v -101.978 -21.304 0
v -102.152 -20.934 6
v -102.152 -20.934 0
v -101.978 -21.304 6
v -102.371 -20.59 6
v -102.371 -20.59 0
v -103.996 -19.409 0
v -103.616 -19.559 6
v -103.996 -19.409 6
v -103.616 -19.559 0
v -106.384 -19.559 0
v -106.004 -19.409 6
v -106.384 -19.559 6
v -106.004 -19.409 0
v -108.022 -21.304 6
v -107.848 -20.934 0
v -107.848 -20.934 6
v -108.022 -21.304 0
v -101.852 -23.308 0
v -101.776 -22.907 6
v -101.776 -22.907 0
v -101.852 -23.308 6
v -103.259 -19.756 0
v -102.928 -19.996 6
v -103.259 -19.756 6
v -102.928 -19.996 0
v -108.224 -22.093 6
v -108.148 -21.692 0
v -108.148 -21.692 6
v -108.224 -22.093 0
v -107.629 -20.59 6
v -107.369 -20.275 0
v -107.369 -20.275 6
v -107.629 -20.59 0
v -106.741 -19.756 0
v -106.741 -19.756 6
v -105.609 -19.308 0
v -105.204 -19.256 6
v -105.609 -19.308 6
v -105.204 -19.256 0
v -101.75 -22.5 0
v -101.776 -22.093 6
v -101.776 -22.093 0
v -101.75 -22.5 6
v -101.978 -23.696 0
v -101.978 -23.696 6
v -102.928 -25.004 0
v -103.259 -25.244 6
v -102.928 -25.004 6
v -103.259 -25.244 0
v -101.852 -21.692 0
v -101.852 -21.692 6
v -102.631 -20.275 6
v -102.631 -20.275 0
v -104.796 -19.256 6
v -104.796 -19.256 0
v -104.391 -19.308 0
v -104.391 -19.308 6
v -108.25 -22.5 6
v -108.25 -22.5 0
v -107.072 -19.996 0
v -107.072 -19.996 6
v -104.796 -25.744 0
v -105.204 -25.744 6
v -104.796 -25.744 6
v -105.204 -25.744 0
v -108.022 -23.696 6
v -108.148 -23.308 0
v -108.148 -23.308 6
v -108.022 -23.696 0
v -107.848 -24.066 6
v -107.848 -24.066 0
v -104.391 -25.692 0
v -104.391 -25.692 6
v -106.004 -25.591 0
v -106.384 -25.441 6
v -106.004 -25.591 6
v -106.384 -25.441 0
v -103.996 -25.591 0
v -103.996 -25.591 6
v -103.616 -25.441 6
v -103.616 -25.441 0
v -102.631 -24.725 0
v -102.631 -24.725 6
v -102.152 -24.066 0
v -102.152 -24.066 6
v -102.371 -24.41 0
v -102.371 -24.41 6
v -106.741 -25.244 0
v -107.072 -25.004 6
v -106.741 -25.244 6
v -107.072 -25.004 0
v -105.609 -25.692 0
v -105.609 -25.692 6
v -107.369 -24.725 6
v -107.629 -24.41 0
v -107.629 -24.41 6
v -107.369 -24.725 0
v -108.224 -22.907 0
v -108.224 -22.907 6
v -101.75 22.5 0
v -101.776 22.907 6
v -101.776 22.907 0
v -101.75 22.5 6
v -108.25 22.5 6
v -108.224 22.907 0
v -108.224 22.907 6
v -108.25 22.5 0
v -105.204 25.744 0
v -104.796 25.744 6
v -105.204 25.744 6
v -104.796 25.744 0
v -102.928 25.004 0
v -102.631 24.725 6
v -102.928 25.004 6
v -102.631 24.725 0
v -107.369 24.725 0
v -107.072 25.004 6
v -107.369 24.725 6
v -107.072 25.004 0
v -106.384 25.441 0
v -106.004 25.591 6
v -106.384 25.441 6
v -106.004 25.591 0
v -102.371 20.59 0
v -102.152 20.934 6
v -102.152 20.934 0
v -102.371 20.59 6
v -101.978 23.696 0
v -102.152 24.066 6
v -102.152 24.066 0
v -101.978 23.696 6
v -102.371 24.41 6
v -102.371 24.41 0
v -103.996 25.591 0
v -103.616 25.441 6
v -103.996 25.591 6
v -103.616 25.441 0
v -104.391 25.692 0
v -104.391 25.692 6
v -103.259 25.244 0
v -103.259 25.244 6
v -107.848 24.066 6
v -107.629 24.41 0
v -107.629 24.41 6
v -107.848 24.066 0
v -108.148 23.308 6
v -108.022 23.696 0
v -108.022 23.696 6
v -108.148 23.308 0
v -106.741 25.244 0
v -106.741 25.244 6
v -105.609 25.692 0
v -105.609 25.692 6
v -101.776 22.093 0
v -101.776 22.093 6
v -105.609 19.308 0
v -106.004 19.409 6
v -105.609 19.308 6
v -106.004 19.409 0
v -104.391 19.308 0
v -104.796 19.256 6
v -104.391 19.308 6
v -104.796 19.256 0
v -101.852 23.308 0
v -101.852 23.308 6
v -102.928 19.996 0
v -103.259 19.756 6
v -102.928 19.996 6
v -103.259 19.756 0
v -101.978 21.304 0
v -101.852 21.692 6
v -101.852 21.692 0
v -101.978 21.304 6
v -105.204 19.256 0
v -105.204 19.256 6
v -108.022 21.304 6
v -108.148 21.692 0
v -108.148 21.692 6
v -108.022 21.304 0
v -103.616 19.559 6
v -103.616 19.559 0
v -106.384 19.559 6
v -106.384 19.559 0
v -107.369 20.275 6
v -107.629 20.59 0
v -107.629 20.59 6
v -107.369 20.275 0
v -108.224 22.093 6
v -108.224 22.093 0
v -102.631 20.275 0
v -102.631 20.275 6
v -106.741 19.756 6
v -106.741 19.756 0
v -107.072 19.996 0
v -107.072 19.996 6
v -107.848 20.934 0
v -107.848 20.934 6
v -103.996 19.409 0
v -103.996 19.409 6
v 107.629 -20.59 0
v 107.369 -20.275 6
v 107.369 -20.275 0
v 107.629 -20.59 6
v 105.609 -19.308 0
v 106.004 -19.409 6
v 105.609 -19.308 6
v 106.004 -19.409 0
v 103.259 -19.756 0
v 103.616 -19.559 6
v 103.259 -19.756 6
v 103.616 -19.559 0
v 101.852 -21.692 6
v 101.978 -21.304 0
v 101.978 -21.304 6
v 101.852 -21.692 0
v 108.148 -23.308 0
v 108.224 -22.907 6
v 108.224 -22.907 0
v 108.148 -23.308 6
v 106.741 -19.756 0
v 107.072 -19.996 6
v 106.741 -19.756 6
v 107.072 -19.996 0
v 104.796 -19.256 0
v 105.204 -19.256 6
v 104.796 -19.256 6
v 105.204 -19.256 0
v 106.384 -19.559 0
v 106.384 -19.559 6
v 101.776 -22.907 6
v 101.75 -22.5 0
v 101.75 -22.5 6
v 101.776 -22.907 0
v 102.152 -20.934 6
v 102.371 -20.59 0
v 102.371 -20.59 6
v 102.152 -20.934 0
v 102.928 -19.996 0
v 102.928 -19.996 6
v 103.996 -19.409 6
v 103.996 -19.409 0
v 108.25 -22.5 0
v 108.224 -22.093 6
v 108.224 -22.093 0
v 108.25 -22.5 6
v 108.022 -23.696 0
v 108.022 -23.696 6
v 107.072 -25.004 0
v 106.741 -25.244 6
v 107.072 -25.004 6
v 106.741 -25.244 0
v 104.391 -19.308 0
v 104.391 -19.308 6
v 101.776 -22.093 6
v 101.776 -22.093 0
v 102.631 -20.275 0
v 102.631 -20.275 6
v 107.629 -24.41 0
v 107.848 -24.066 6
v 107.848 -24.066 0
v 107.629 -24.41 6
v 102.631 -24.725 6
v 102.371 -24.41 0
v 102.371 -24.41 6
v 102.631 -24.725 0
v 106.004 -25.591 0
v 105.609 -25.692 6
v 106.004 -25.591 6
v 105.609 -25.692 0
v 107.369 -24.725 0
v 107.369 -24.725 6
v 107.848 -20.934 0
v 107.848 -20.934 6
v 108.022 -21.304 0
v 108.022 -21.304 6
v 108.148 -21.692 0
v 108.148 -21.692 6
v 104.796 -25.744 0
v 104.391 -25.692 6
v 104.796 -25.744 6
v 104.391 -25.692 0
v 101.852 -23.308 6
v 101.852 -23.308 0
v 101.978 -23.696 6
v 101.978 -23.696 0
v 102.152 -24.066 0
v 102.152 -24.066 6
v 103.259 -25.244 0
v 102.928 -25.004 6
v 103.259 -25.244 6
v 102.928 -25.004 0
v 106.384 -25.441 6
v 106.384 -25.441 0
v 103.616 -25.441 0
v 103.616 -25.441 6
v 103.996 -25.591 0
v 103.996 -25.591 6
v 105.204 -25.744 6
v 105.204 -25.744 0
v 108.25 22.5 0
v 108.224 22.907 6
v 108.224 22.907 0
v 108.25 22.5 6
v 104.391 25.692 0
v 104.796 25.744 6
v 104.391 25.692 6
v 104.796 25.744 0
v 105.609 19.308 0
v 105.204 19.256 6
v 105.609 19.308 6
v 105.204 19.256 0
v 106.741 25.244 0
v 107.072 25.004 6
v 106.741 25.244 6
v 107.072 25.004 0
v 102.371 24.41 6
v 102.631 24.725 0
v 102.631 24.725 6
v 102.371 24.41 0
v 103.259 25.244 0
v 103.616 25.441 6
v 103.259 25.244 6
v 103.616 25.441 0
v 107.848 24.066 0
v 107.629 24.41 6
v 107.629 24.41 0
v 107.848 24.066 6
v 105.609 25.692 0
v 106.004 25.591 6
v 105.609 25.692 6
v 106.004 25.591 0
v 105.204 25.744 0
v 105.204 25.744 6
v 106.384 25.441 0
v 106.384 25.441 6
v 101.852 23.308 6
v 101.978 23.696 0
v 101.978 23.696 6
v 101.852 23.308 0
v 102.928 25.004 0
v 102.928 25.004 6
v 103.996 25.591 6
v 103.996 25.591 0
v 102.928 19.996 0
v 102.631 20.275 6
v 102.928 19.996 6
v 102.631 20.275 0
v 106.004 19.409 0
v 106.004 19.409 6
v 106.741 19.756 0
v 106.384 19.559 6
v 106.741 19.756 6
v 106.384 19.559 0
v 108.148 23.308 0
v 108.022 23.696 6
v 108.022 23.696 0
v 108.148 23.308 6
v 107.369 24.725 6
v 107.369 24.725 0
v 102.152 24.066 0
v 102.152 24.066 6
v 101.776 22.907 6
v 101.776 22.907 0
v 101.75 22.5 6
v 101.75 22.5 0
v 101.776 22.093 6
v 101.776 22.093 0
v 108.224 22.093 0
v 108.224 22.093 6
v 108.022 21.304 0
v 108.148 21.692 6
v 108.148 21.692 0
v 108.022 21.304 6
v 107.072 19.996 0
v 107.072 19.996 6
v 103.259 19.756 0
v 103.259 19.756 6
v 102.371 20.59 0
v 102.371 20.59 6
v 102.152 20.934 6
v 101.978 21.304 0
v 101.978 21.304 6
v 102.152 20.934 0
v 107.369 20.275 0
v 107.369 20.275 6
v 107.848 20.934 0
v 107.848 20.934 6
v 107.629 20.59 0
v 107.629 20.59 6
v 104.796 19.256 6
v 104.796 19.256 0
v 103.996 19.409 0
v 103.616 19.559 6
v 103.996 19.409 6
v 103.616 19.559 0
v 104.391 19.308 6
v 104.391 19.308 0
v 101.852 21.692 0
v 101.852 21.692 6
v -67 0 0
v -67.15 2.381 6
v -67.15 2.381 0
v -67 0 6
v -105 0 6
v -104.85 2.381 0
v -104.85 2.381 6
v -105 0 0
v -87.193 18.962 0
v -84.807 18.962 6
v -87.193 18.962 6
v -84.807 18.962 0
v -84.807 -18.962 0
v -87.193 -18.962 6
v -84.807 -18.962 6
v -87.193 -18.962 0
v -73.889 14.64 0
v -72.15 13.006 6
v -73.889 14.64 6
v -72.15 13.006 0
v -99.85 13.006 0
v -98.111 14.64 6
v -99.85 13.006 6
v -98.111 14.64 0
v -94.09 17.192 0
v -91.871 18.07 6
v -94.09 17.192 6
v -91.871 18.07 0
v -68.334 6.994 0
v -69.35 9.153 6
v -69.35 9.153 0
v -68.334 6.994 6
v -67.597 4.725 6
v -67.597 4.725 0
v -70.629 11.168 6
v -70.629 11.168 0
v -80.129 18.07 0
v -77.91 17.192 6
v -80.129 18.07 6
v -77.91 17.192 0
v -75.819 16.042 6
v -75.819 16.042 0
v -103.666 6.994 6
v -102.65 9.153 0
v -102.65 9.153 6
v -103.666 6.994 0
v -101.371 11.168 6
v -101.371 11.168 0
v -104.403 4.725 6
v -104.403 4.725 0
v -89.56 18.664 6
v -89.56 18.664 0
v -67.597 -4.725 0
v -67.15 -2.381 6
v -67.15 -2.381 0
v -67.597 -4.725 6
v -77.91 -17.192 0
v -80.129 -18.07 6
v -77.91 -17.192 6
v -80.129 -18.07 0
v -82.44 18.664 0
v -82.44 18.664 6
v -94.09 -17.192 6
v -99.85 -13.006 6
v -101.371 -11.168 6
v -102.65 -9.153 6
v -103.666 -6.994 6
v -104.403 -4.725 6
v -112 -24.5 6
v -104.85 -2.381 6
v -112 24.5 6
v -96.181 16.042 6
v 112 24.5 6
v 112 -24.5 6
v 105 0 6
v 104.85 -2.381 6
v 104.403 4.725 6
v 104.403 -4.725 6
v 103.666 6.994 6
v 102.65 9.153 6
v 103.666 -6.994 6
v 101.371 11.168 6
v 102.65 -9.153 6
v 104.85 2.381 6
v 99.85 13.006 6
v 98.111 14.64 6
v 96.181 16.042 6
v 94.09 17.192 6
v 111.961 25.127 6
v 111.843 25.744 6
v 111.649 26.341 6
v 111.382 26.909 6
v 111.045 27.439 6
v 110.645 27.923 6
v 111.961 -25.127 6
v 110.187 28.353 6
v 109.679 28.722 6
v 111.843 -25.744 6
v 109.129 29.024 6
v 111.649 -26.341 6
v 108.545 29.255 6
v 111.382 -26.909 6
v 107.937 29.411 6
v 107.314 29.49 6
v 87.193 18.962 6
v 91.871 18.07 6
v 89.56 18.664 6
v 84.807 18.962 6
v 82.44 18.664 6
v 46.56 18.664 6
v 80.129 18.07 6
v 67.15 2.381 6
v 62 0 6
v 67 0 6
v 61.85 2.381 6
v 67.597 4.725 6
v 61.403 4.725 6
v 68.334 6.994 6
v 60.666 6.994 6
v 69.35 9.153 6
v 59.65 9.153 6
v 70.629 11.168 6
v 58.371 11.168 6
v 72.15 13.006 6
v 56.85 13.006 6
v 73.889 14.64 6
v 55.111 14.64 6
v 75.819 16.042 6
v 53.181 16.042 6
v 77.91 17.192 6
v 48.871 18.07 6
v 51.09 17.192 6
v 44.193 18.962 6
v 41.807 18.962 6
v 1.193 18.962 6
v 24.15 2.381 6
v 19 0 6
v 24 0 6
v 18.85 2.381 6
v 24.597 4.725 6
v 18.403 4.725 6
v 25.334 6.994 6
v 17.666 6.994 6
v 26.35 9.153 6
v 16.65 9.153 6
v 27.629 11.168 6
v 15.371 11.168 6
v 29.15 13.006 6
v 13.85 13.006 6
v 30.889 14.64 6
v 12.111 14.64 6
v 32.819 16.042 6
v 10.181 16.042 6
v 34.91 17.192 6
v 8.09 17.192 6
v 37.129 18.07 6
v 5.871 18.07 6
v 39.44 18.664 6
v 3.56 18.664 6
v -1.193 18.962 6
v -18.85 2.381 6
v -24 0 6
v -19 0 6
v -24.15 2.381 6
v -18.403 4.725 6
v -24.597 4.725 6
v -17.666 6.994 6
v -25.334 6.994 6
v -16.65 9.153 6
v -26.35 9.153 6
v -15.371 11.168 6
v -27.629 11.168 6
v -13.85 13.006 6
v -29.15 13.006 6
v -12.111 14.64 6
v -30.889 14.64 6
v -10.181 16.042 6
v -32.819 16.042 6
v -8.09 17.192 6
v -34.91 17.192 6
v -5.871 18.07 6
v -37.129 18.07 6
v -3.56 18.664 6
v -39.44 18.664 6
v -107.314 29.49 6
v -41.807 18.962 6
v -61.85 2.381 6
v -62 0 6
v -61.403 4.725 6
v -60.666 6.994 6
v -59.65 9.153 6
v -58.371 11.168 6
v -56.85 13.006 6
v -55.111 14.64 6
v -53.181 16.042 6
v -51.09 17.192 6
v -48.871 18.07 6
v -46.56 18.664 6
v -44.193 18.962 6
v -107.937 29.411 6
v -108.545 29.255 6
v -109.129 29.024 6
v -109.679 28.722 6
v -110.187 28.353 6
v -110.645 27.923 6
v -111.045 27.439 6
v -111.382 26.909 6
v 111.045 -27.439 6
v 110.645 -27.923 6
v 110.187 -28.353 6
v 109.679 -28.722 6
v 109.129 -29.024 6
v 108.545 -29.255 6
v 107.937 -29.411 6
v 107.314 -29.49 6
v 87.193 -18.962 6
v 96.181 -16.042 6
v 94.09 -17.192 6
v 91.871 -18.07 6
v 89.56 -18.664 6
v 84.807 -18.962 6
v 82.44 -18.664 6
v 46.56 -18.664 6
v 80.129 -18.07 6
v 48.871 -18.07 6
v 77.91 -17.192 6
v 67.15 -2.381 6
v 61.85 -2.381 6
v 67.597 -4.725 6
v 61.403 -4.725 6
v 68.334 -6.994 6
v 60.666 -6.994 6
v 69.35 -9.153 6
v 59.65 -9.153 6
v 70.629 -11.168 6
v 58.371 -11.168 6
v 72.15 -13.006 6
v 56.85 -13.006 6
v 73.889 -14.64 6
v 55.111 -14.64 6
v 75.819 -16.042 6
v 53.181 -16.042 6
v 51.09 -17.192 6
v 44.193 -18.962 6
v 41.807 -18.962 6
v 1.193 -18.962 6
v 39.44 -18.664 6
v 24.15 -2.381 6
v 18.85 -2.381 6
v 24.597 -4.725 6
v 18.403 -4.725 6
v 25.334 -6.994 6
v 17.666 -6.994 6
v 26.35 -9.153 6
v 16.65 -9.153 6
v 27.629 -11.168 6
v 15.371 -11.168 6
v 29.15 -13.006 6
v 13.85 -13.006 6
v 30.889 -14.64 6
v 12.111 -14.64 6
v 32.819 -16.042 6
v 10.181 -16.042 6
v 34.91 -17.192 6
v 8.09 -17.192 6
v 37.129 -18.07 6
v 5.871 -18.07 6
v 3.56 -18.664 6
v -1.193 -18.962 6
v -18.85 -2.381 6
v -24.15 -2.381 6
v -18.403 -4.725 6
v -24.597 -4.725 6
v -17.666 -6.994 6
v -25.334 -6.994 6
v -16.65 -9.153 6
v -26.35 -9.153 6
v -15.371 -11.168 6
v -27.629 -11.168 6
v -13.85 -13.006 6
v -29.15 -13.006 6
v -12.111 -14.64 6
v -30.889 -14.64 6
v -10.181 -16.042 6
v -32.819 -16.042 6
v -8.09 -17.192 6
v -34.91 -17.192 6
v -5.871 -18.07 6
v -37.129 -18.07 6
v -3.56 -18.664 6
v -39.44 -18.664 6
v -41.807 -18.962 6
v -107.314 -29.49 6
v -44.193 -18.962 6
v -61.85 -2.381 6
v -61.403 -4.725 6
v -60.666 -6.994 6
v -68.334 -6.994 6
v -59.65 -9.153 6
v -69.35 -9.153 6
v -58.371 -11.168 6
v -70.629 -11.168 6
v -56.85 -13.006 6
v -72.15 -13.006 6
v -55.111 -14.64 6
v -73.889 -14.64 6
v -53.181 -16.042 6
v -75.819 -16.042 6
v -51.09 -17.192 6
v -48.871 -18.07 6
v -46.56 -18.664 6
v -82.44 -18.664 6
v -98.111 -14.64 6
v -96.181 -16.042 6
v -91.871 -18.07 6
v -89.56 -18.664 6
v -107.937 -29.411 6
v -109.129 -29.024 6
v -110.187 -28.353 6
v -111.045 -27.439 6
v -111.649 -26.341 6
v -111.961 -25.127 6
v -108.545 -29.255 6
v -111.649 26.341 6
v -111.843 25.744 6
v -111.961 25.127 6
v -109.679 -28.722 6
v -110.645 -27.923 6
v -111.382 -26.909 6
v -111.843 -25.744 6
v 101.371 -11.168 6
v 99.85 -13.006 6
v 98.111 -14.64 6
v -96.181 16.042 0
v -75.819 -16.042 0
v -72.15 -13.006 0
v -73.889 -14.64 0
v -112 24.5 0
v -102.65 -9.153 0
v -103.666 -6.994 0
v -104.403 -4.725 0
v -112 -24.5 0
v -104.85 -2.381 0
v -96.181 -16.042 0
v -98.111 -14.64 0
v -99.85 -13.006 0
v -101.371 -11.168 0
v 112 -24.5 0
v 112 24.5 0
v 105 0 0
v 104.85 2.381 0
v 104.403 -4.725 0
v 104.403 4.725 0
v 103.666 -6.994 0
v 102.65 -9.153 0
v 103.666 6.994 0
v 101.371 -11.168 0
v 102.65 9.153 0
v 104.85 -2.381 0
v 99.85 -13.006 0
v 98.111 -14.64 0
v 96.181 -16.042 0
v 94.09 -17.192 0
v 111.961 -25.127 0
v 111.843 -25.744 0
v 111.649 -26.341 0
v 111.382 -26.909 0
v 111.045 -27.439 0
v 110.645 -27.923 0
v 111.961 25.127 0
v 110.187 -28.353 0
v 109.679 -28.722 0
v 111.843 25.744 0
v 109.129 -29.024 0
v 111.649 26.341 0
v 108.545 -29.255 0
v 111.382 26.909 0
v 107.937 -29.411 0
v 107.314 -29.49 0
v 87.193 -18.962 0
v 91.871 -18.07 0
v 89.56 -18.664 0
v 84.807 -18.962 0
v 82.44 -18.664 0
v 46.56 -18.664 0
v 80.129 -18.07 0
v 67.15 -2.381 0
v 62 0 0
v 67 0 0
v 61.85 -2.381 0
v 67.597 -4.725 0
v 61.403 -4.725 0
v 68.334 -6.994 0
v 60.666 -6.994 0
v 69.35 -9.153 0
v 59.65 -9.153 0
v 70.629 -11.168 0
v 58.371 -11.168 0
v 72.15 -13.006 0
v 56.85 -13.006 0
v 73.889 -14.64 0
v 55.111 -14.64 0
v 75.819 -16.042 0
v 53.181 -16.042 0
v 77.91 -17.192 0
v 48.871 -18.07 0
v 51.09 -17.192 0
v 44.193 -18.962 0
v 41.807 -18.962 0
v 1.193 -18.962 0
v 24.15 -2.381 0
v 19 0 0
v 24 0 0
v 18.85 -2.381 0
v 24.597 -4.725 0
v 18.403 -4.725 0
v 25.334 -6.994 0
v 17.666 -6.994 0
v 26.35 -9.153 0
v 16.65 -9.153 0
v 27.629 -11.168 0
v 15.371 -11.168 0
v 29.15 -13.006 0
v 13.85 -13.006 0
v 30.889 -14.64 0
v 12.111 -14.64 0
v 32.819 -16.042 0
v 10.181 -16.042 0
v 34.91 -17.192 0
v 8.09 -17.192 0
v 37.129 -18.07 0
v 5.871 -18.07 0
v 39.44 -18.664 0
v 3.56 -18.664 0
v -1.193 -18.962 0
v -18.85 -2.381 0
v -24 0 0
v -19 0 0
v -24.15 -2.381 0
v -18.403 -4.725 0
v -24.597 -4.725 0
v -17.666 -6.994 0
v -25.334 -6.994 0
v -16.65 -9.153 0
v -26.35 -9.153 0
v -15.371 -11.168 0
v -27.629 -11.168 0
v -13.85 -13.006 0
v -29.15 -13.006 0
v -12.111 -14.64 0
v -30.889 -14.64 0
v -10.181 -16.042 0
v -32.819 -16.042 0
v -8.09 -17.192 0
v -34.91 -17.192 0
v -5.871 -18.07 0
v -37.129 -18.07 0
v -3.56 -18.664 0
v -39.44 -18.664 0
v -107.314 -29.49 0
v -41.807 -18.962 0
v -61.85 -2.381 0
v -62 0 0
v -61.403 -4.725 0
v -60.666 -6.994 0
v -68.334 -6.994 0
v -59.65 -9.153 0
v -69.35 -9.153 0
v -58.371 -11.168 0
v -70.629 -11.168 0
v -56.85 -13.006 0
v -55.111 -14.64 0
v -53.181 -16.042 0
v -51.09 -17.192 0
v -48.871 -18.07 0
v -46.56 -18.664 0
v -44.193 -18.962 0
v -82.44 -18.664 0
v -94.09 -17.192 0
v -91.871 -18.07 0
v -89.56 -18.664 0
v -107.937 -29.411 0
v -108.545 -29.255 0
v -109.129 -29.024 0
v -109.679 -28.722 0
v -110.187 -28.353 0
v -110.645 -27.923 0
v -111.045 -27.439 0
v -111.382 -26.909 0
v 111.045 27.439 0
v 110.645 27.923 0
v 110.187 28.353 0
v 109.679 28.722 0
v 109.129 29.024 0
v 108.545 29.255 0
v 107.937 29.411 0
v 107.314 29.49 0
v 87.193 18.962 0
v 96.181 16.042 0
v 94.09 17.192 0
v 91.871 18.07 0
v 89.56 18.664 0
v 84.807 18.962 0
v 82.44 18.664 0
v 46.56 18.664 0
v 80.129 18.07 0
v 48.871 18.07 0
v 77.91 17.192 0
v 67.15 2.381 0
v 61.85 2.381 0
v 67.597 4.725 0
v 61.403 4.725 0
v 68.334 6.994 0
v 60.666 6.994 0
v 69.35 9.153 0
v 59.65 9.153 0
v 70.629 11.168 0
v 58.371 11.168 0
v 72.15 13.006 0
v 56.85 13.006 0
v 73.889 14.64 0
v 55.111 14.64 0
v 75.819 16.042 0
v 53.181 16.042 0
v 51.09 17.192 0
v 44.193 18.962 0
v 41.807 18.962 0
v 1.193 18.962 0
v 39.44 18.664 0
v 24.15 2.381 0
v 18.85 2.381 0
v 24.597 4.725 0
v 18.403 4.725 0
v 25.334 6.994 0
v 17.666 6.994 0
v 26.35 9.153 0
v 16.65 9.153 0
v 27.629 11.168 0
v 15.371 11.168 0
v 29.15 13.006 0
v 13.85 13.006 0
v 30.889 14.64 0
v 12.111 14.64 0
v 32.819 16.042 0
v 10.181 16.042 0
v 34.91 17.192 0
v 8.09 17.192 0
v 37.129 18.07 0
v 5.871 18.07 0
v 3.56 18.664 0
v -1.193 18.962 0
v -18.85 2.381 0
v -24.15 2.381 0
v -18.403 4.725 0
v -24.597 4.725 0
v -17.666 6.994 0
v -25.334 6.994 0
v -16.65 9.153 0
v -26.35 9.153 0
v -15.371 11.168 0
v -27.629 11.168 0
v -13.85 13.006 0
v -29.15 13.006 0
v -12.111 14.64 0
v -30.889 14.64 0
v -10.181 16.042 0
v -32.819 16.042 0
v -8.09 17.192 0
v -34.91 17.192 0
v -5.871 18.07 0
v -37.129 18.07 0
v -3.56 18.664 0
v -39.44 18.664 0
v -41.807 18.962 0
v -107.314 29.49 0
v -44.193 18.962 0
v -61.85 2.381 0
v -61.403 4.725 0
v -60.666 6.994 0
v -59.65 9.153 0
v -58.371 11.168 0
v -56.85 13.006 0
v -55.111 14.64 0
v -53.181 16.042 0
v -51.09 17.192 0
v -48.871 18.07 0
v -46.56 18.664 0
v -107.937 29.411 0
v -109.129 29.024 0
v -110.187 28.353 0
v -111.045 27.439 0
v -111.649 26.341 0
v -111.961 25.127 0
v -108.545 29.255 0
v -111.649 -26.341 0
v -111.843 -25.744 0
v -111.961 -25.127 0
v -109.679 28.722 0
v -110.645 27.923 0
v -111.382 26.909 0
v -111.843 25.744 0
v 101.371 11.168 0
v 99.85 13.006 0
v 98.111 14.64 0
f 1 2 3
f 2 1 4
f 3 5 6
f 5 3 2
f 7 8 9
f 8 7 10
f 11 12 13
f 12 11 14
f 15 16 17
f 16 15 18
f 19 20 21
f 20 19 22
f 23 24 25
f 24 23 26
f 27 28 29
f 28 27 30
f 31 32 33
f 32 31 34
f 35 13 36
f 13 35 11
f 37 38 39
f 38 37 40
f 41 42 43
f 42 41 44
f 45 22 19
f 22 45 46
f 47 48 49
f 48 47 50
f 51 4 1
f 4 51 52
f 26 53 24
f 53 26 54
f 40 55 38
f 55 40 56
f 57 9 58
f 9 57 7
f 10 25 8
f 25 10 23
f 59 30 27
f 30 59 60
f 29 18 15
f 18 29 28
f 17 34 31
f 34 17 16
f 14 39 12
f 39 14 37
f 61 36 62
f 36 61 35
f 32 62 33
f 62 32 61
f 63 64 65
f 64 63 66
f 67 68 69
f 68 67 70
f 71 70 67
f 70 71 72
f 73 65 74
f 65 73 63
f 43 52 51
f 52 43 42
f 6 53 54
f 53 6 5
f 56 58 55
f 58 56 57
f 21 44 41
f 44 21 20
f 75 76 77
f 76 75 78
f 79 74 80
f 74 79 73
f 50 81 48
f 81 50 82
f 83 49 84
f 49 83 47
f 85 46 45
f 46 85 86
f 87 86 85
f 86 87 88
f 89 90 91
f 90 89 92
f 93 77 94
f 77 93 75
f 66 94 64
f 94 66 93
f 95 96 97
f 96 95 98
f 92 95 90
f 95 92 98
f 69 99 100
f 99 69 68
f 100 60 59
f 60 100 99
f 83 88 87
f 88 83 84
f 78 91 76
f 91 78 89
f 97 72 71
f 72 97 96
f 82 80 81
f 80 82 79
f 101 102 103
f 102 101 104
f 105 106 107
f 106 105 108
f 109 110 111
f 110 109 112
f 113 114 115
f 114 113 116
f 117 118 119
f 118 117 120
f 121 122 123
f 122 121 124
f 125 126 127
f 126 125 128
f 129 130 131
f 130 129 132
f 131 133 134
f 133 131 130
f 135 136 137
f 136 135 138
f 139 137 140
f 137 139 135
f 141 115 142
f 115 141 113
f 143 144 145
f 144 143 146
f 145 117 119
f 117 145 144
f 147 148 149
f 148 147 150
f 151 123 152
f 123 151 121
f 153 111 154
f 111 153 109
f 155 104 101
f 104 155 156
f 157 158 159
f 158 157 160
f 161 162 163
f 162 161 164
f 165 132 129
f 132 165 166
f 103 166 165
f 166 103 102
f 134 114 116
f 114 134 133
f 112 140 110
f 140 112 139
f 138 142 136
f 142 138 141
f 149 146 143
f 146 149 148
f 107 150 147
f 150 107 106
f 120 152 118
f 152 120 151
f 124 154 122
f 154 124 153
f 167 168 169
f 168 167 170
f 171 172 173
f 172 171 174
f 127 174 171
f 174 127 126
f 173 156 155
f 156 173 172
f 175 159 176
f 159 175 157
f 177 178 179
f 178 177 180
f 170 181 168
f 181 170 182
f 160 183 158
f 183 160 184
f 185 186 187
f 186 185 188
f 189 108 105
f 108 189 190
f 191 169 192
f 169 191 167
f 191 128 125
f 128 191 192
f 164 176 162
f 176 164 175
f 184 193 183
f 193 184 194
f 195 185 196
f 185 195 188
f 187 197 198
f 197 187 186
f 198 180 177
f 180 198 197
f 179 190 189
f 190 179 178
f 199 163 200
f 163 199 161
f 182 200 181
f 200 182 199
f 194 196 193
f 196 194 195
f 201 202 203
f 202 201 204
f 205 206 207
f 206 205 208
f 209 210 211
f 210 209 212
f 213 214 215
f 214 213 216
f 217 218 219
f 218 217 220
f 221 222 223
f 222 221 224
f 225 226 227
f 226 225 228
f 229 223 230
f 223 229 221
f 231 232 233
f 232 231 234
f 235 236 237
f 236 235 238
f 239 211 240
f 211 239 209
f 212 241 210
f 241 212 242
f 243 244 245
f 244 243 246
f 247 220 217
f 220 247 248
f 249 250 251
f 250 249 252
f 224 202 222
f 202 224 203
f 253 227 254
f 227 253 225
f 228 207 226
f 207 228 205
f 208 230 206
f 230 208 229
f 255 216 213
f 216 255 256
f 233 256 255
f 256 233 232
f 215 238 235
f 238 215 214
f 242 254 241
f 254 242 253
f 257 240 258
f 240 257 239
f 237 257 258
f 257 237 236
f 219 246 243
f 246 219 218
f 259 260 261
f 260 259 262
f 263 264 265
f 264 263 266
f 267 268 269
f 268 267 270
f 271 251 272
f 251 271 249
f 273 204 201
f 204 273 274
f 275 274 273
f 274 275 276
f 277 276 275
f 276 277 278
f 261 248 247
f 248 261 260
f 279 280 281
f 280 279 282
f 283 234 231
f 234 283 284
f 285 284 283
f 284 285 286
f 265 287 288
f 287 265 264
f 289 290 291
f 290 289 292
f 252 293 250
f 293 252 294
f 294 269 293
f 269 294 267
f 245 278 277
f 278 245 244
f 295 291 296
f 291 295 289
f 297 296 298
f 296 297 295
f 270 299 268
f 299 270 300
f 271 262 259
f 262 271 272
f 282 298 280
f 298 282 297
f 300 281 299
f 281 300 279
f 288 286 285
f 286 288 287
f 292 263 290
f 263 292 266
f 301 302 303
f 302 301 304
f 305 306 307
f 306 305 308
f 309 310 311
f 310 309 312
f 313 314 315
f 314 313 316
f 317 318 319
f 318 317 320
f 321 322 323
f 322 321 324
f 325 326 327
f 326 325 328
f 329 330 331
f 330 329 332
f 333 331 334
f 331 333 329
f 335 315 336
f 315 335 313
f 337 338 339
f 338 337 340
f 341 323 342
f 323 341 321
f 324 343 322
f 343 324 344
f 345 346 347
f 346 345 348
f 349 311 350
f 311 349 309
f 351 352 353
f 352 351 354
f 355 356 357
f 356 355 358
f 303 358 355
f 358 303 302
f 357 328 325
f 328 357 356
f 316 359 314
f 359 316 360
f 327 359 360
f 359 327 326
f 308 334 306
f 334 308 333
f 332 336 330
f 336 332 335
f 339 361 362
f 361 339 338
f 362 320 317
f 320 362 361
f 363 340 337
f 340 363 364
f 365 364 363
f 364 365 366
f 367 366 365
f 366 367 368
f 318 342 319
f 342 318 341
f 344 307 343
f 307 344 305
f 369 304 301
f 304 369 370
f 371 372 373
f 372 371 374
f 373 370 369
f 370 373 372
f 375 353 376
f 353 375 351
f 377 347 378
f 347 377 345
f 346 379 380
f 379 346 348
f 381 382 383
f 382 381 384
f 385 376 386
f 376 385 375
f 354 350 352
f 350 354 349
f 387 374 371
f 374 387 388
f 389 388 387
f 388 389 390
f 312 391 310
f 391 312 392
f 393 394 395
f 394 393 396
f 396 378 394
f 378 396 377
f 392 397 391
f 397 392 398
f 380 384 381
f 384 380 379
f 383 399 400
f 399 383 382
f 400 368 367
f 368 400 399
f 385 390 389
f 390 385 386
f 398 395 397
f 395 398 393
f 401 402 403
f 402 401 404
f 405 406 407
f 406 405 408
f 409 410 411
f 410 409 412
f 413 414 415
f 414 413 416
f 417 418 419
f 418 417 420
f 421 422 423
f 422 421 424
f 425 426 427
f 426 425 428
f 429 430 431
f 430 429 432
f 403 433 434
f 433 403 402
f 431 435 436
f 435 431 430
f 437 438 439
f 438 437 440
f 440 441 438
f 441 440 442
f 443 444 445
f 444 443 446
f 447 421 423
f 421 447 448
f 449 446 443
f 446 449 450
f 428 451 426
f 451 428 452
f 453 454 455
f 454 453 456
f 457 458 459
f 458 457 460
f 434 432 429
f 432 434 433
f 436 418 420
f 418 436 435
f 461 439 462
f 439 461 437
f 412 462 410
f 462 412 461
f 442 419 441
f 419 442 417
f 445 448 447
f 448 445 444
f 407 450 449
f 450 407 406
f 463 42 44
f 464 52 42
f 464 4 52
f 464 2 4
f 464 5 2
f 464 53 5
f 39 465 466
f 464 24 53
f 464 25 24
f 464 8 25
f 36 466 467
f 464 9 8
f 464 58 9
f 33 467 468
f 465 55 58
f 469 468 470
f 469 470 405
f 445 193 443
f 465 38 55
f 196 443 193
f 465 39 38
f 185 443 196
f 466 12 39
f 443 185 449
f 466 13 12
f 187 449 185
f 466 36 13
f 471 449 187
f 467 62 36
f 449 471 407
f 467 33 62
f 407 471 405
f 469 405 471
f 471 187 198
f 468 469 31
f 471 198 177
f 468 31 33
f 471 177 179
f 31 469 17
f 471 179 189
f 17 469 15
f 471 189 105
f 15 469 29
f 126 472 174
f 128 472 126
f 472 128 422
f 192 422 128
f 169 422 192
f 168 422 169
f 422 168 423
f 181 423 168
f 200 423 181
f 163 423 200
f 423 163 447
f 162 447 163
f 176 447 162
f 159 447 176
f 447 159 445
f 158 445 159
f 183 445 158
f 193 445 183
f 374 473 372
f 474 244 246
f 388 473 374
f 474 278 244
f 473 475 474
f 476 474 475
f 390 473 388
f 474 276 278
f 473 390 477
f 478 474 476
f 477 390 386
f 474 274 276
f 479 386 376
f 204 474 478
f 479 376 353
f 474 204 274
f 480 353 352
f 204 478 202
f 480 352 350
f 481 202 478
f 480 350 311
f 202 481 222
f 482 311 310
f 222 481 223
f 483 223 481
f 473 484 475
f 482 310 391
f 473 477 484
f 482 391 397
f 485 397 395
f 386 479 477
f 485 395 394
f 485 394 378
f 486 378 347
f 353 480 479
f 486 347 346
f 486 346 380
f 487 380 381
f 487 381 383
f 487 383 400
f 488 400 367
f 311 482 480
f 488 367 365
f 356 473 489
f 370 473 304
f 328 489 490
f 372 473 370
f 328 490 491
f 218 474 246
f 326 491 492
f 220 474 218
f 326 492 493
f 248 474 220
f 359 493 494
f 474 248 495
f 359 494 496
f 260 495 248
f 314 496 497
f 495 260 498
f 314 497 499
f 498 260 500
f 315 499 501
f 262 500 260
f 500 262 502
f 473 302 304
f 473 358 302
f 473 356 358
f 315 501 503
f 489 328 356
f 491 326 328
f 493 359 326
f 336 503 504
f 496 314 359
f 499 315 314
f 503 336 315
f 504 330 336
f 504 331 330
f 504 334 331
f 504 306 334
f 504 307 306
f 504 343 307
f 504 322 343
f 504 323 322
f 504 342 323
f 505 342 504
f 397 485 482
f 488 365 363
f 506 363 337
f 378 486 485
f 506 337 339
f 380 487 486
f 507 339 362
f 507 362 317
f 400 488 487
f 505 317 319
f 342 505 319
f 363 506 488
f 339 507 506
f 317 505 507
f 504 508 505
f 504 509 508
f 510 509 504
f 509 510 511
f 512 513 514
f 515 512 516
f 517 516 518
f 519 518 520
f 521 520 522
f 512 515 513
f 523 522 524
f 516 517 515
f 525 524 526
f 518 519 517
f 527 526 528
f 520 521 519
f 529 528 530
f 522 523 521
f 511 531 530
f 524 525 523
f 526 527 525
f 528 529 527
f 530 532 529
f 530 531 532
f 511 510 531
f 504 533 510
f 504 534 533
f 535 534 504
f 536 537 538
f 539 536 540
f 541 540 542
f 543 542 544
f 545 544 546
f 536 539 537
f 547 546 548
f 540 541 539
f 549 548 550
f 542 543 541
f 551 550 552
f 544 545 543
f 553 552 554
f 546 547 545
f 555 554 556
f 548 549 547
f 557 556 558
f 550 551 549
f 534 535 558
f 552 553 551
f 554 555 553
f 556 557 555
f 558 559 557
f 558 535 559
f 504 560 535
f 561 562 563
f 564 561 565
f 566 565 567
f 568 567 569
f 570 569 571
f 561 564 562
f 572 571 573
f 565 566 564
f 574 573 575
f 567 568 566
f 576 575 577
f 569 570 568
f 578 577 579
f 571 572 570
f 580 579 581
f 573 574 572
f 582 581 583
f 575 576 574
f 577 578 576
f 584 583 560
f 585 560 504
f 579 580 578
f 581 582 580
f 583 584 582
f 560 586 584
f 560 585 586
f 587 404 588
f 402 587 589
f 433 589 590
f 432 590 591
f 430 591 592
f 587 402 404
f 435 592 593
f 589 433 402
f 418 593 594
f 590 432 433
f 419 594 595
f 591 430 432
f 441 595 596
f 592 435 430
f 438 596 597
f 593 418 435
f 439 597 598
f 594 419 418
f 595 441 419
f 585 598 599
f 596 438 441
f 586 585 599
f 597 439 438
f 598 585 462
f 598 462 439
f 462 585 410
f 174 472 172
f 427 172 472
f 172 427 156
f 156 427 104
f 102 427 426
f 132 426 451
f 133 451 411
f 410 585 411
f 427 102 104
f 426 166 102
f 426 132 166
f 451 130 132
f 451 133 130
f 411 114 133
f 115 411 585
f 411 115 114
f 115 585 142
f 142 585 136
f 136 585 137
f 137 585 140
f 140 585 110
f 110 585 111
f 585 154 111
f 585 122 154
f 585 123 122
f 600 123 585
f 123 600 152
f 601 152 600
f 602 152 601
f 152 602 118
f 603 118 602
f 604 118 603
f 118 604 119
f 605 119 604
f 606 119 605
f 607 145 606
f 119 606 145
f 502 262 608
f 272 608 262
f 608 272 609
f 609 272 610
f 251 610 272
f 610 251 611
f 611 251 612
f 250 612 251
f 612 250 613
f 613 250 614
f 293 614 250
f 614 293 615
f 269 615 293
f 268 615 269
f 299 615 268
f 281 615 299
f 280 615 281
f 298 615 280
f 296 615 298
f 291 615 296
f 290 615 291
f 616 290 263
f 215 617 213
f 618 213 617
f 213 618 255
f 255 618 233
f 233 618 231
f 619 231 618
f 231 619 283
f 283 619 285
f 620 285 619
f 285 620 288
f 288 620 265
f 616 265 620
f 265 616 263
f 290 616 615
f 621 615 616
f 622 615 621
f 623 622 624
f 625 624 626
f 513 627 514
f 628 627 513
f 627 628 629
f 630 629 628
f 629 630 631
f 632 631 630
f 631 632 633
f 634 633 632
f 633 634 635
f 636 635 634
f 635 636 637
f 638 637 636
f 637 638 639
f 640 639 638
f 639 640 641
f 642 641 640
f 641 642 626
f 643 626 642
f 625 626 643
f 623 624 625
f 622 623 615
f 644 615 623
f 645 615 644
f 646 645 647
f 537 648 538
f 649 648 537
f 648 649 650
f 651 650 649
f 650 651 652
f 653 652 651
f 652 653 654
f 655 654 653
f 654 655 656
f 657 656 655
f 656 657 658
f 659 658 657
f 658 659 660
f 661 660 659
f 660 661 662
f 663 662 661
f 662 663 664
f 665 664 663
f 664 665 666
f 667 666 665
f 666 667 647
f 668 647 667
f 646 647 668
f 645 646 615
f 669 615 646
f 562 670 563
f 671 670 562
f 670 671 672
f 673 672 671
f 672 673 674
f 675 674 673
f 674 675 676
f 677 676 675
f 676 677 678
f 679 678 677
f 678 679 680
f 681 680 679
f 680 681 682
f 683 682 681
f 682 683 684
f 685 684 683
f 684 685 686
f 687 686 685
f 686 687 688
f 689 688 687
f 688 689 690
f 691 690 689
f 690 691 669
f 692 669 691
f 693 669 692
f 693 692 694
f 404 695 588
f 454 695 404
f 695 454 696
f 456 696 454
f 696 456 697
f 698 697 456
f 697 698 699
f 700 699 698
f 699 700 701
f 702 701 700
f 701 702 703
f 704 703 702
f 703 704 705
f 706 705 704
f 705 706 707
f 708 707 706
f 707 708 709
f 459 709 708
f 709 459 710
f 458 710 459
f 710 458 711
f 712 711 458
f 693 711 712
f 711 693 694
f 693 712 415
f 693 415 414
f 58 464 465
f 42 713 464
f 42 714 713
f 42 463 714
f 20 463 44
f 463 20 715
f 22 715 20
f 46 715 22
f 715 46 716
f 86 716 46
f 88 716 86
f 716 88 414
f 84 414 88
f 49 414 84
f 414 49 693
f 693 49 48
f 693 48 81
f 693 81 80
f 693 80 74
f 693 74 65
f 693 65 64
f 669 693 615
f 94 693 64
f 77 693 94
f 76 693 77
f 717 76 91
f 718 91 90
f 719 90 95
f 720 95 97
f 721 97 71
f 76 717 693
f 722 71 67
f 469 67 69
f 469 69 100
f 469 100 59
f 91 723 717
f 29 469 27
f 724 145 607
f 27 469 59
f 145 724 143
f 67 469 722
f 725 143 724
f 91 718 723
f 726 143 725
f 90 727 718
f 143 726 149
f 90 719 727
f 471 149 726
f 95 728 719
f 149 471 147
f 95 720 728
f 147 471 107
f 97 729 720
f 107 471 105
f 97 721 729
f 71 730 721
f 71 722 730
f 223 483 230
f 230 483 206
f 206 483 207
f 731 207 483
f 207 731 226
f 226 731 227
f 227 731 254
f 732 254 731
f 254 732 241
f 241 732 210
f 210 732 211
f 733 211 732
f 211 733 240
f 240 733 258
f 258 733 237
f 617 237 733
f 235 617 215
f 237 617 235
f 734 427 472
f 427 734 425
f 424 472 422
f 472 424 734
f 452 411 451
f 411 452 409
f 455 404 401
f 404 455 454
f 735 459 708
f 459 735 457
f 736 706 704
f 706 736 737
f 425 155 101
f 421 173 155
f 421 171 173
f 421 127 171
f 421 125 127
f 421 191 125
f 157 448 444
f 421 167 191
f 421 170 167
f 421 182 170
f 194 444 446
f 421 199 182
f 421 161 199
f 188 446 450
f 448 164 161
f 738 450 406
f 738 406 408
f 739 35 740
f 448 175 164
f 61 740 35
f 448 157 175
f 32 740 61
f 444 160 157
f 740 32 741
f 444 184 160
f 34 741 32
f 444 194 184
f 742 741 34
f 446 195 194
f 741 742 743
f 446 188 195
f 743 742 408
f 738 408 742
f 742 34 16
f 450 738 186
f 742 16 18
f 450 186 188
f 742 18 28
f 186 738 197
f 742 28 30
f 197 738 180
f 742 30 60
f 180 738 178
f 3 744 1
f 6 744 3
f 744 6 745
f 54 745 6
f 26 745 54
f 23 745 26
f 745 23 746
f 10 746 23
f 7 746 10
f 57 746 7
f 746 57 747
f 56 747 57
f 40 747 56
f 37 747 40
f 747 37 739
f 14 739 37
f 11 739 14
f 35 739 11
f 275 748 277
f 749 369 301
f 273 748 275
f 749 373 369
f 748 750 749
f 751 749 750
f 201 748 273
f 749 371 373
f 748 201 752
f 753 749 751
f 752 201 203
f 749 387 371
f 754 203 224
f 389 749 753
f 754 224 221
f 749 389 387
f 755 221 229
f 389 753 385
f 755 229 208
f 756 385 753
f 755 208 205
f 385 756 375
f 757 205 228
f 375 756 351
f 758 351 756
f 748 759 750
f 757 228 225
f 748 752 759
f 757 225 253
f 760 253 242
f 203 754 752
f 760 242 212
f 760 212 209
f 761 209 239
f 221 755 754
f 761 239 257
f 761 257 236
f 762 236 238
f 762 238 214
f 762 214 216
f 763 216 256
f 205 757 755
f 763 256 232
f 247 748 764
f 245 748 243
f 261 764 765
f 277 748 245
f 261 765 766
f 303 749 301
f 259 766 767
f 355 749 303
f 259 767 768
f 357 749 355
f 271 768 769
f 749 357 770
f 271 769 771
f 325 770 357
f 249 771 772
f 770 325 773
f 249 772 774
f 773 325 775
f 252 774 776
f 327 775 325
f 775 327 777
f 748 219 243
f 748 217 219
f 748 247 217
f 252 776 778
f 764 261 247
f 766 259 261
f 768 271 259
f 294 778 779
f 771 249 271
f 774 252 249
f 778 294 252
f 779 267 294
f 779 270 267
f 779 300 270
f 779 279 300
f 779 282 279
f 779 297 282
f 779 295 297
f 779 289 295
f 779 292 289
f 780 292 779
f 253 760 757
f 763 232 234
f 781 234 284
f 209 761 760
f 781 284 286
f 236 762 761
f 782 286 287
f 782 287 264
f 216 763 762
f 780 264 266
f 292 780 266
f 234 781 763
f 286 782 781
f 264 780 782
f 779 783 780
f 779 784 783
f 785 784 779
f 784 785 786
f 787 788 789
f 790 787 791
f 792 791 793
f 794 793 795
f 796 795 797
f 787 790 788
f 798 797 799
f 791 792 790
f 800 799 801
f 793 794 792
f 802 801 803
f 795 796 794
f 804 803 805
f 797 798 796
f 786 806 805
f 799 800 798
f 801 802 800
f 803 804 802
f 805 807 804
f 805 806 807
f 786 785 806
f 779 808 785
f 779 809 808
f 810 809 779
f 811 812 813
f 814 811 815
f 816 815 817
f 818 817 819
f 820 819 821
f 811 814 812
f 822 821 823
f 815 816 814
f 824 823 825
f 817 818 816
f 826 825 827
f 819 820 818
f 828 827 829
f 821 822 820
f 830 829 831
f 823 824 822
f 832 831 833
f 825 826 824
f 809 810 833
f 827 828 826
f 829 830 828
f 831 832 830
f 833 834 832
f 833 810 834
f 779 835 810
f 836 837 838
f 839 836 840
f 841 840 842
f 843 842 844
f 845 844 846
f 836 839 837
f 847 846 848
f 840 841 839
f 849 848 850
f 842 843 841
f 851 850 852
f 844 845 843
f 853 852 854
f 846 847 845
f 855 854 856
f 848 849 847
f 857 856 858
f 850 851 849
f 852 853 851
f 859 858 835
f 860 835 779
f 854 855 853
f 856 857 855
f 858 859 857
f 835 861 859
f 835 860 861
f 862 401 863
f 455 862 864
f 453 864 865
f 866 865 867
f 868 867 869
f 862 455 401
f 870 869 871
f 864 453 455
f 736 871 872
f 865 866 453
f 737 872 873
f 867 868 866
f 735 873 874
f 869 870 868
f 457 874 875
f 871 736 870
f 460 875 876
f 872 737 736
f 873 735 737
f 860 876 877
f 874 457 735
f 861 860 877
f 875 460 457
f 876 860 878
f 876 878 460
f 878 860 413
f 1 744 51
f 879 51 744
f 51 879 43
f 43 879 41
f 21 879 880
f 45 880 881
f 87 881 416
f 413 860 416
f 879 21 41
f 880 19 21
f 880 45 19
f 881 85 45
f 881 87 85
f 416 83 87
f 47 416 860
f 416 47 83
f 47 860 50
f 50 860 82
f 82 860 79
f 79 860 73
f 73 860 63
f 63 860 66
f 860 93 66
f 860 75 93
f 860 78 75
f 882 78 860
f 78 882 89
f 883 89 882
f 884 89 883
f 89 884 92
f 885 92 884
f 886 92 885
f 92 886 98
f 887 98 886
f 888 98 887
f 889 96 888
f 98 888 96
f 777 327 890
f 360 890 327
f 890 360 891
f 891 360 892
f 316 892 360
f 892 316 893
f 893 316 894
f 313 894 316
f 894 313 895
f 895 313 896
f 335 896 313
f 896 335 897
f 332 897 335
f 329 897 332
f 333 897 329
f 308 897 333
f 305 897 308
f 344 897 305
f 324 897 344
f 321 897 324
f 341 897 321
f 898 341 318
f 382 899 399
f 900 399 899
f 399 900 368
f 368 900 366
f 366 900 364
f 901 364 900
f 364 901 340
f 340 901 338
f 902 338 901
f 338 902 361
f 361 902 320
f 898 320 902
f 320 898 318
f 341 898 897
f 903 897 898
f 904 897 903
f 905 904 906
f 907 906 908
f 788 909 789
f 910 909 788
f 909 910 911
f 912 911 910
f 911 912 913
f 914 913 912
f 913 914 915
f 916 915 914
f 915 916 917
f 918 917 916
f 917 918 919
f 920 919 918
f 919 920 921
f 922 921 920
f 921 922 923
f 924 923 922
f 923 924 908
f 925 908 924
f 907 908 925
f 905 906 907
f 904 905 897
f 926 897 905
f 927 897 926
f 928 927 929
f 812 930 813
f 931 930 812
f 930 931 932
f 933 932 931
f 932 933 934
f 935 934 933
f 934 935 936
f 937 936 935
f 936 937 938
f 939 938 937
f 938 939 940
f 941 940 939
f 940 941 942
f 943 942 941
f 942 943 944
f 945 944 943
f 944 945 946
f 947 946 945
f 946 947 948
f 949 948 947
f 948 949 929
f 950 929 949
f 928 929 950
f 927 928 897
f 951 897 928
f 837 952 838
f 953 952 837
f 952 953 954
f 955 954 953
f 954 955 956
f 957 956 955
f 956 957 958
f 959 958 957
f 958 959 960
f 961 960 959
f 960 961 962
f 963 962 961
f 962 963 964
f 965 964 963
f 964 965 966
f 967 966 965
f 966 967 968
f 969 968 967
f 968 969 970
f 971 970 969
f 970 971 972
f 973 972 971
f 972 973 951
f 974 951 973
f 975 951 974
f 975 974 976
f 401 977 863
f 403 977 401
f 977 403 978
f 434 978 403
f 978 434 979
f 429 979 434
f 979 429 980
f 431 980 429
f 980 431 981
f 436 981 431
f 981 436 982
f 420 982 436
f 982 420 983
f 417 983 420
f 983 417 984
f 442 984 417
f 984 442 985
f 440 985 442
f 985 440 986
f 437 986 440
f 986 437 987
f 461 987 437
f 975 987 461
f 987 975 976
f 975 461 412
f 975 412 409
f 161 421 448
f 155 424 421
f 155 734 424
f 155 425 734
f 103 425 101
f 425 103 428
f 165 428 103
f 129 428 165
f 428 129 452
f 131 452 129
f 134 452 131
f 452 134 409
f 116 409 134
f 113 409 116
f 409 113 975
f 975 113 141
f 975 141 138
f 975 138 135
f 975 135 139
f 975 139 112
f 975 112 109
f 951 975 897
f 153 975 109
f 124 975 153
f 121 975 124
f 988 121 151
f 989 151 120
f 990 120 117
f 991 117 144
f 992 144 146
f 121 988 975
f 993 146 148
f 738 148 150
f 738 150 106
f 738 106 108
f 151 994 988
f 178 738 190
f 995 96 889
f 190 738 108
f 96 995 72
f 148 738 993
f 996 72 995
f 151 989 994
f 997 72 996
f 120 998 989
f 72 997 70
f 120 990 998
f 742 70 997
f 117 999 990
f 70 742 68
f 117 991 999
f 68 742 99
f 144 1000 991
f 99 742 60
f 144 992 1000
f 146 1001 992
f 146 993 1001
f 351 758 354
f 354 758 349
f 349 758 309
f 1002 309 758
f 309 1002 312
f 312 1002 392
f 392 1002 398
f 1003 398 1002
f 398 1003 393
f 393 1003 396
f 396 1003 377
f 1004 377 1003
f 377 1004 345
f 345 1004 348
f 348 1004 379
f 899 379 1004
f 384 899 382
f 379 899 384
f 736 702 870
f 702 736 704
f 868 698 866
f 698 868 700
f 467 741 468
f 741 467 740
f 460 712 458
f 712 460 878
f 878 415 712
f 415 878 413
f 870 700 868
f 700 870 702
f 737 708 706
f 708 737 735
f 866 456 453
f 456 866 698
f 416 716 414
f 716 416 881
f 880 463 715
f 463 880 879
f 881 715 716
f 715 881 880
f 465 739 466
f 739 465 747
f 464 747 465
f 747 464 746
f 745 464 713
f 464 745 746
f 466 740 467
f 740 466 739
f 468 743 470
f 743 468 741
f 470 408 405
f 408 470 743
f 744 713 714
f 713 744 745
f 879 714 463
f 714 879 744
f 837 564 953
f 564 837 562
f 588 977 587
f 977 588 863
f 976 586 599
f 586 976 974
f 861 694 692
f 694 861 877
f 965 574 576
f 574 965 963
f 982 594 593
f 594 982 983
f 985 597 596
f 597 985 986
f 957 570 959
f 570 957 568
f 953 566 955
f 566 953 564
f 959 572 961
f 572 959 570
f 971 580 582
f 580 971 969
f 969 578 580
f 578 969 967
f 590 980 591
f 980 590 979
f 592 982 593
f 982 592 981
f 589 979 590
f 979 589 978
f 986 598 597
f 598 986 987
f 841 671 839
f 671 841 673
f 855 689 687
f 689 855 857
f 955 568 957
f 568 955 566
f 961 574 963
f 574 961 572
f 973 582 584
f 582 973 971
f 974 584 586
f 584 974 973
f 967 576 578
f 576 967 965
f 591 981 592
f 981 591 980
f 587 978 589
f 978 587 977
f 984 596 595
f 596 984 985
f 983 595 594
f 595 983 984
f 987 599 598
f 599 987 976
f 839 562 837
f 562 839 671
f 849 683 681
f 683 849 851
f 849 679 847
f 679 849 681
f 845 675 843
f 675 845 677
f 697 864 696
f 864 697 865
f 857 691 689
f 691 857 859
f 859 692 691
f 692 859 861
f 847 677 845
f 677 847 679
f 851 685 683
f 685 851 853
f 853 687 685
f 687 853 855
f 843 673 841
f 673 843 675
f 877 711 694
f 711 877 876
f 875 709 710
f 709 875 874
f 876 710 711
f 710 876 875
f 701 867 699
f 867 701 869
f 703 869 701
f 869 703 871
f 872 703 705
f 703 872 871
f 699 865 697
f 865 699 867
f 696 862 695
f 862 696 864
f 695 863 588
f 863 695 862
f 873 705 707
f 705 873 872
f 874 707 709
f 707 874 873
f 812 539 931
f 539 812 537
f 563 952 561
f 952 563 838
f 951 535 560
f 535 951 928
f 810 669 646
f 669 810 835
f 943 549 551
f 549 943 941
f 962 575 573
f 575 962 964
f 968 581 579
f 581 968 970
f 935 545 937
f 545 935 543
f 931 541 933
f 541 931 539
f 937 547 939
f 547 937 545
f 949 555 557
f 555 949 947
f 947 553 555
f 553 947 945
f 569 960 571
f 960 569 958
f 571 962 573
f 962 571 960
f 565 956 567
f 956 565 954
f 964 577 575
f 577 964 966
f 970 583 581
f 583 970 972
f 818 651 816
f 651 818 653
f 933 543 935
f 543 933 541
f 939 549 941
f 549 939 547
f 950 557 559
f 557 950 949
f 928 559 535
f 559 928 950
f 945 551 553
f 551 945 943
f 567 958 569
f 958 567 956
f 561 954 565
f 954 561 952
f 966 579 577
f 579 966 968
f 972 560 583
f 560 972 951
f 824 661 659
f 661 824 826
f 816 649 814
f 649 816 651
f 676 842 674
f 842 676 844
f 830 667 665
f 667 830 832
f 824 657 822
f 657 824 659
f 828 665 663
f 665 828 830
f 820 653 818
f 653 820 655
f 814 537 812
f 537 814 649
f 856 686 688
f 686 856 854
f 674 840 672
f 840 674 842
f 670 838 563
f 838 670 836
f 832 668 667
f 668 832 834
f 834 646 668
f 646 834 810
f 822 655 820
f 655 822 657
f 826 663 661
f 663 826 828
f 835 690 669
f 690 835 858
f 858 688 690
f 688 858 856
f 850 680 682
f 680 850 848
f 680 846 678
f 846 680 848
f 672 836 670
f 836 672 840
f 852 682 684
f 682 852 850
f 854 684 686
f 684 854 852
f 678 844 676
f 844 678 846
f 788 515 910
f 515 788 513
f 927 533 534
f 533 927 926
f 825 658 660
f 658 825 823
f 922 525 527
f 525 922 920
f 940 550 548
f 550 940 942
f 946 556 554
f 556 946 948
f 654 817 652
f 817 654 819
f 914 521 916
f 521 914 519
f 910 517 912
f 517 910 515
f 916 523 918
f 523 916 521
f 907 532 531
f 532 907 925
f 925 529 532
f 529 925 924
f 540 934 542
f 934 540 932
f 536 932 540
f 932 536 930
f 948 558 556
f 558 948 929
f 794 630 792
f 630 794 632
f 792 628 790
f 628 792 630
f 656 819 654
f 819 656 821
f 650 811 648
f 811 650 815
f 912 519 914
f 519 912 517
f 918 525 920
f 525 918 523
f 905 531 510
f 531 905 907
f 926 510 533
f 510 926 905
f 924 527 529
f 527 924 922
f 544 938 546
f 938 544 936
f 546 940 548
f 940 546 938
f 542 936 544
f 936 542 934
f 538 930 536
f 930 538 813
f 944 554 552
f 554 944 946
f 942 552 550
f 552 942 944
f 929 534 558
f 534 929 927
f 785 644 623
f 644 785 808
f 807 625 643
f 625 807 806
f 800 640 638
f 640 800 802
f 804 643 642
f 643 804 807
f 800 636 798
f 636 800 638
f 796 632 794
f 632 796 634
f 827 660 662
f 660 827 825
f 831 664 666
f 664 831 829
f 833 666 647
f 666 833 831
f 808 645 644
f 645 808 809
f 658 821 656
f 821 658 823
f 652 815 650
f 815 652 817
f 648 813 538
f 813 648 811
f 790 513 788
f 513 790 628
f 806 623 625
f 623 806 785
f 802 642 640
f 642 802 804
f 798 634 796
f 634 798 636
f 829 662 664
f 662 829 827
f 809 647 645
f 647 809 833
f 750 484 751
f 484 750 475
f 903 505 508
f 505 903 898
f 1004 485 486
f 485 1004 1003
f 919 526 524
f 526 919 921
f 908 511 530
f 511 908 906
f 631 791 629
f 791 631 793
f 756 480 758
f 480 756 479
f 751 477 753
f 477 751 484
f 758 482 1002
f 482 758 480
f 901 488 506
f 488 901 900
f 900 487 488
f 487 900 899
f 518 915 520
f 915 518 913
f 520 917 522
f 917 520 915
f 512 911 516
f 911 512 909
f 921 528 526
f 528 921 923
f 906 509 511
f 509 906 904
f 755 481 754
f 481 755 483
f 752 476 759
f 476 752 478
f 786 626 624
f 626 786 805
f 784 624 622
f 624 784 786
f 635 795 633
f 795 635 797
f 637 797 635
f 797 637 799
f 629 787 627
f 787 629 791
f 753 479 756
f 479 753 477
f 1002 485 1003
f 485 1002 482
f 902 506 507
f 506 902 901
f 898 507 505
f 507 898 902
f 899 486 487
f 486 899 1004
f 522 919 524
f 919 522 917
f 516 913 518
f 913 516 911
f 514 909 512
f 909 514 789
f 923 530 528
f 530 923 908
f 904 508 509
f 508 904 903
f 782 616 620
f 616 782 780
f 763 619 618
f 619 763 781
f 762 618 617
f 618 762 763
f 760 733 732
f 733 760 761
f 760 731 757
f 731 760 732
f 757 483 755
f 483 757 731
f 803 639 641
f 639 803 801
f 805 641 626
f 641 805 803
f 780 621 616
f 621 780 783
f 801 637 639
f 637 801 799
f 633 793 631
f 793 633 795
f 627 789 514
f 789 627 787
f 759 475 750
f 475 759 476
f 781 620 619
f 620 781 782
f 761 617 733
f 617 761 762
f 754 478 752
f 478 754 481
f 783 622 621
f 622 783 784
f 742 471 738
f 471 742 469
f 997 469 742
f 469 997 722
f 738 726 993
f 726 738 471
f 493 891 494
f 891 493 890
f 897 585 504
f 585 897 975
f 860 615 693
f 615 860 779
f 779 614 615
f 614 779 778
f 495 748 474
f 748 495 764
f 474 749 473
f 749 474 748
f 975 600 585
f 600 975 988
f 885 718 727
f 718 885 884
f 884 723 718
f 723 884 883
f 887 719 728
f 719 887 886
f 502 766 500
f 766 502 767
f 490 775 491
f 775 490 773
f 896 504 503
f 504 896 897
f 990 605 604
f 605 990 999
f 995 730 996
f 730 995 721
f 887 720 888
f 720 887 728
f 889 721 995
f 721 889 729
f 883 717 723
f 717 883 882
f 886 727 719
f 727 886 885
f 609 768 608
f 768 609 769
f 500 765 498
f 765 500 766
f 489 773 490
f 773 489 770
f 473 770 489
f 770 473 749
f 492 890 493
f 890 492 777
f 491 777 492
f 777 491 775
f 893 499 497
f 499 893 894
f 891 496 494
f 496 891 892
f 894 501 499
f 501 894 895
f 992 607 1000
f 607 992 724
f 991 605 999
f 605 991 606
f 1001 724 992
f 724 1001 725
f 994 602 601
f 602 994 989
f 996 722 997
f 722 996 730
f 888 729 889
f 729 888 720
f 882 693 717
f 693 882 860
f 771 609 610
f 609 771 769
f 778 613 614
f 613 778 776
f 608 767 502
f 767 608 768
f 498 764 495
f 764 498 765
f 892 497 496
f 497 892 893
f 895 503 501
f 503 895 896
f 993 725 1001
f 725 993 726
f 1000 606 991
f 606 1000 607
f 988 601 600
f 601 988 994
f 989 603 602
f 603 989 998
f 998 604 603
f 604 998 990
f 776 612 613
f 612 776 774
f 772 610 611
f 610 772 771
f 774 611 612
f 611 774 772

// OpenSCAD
$fn = 50;


difference() {
	union() {
		hull() {
			translate(v = [-107.0000000000, 24.5000000000, 0]) {
				cylinder(h = 6, r = 5);
			}
			translate(v = [107.0000000000, 24.5000000000, 0]) {
				cylinder(h = 6, r = 5);
			}
			translate(v = [-107.0000000000, -24.5000000000, 0]) {
				cylinder(h = 6, r = 5);
			}
			translate(v = [107.0000000000, -24.5000000000, 0]) {
				cylinder(h = 6, r = 5);
			}
		}
	}
	union() {
		#translate(v = [-105.0000000000, -22.5000000000, -100.0000000000]) {
			cylinder(h = 200, r = 3.2500000000);
		}
		#translate(v = [-105.0000000000, 22.5000000000, -100.0000000000]) {
			cylinder(h = 200, r = 3.2500000000);
		}
		#translate(v = [105.0000000000, -22.5000000000, -100.0000000000]) {
			cylinder(h = 200, r = 3.2500000000);
		}
		#translate(v = [105.0000000000, 22.5000000000, -100.0000000000]) {
			cylinder(h = 200, r = 3.2500000000);
		}
		#translate(v = [-86.0000000000, 0, 0]) {
			cylinder(h = 6, r = 19.0000000000);
		}
		#translate(v = [-43.0000000000, 0, 0]) {
			cylinder(h = 6, r = 19.0000000000);
		}
		#cylinder(h = 6, r = 19.0000000000);
		#translate(v = [43.0000000000, 0, 0]) {
			cylinder(h = 6, r = 19.0000000000);
		}
		#translate(v = [86.0000000000, 0, 0]) {
			cylinder(h = 6, r = 19.0000000000);
		}
	}
}
